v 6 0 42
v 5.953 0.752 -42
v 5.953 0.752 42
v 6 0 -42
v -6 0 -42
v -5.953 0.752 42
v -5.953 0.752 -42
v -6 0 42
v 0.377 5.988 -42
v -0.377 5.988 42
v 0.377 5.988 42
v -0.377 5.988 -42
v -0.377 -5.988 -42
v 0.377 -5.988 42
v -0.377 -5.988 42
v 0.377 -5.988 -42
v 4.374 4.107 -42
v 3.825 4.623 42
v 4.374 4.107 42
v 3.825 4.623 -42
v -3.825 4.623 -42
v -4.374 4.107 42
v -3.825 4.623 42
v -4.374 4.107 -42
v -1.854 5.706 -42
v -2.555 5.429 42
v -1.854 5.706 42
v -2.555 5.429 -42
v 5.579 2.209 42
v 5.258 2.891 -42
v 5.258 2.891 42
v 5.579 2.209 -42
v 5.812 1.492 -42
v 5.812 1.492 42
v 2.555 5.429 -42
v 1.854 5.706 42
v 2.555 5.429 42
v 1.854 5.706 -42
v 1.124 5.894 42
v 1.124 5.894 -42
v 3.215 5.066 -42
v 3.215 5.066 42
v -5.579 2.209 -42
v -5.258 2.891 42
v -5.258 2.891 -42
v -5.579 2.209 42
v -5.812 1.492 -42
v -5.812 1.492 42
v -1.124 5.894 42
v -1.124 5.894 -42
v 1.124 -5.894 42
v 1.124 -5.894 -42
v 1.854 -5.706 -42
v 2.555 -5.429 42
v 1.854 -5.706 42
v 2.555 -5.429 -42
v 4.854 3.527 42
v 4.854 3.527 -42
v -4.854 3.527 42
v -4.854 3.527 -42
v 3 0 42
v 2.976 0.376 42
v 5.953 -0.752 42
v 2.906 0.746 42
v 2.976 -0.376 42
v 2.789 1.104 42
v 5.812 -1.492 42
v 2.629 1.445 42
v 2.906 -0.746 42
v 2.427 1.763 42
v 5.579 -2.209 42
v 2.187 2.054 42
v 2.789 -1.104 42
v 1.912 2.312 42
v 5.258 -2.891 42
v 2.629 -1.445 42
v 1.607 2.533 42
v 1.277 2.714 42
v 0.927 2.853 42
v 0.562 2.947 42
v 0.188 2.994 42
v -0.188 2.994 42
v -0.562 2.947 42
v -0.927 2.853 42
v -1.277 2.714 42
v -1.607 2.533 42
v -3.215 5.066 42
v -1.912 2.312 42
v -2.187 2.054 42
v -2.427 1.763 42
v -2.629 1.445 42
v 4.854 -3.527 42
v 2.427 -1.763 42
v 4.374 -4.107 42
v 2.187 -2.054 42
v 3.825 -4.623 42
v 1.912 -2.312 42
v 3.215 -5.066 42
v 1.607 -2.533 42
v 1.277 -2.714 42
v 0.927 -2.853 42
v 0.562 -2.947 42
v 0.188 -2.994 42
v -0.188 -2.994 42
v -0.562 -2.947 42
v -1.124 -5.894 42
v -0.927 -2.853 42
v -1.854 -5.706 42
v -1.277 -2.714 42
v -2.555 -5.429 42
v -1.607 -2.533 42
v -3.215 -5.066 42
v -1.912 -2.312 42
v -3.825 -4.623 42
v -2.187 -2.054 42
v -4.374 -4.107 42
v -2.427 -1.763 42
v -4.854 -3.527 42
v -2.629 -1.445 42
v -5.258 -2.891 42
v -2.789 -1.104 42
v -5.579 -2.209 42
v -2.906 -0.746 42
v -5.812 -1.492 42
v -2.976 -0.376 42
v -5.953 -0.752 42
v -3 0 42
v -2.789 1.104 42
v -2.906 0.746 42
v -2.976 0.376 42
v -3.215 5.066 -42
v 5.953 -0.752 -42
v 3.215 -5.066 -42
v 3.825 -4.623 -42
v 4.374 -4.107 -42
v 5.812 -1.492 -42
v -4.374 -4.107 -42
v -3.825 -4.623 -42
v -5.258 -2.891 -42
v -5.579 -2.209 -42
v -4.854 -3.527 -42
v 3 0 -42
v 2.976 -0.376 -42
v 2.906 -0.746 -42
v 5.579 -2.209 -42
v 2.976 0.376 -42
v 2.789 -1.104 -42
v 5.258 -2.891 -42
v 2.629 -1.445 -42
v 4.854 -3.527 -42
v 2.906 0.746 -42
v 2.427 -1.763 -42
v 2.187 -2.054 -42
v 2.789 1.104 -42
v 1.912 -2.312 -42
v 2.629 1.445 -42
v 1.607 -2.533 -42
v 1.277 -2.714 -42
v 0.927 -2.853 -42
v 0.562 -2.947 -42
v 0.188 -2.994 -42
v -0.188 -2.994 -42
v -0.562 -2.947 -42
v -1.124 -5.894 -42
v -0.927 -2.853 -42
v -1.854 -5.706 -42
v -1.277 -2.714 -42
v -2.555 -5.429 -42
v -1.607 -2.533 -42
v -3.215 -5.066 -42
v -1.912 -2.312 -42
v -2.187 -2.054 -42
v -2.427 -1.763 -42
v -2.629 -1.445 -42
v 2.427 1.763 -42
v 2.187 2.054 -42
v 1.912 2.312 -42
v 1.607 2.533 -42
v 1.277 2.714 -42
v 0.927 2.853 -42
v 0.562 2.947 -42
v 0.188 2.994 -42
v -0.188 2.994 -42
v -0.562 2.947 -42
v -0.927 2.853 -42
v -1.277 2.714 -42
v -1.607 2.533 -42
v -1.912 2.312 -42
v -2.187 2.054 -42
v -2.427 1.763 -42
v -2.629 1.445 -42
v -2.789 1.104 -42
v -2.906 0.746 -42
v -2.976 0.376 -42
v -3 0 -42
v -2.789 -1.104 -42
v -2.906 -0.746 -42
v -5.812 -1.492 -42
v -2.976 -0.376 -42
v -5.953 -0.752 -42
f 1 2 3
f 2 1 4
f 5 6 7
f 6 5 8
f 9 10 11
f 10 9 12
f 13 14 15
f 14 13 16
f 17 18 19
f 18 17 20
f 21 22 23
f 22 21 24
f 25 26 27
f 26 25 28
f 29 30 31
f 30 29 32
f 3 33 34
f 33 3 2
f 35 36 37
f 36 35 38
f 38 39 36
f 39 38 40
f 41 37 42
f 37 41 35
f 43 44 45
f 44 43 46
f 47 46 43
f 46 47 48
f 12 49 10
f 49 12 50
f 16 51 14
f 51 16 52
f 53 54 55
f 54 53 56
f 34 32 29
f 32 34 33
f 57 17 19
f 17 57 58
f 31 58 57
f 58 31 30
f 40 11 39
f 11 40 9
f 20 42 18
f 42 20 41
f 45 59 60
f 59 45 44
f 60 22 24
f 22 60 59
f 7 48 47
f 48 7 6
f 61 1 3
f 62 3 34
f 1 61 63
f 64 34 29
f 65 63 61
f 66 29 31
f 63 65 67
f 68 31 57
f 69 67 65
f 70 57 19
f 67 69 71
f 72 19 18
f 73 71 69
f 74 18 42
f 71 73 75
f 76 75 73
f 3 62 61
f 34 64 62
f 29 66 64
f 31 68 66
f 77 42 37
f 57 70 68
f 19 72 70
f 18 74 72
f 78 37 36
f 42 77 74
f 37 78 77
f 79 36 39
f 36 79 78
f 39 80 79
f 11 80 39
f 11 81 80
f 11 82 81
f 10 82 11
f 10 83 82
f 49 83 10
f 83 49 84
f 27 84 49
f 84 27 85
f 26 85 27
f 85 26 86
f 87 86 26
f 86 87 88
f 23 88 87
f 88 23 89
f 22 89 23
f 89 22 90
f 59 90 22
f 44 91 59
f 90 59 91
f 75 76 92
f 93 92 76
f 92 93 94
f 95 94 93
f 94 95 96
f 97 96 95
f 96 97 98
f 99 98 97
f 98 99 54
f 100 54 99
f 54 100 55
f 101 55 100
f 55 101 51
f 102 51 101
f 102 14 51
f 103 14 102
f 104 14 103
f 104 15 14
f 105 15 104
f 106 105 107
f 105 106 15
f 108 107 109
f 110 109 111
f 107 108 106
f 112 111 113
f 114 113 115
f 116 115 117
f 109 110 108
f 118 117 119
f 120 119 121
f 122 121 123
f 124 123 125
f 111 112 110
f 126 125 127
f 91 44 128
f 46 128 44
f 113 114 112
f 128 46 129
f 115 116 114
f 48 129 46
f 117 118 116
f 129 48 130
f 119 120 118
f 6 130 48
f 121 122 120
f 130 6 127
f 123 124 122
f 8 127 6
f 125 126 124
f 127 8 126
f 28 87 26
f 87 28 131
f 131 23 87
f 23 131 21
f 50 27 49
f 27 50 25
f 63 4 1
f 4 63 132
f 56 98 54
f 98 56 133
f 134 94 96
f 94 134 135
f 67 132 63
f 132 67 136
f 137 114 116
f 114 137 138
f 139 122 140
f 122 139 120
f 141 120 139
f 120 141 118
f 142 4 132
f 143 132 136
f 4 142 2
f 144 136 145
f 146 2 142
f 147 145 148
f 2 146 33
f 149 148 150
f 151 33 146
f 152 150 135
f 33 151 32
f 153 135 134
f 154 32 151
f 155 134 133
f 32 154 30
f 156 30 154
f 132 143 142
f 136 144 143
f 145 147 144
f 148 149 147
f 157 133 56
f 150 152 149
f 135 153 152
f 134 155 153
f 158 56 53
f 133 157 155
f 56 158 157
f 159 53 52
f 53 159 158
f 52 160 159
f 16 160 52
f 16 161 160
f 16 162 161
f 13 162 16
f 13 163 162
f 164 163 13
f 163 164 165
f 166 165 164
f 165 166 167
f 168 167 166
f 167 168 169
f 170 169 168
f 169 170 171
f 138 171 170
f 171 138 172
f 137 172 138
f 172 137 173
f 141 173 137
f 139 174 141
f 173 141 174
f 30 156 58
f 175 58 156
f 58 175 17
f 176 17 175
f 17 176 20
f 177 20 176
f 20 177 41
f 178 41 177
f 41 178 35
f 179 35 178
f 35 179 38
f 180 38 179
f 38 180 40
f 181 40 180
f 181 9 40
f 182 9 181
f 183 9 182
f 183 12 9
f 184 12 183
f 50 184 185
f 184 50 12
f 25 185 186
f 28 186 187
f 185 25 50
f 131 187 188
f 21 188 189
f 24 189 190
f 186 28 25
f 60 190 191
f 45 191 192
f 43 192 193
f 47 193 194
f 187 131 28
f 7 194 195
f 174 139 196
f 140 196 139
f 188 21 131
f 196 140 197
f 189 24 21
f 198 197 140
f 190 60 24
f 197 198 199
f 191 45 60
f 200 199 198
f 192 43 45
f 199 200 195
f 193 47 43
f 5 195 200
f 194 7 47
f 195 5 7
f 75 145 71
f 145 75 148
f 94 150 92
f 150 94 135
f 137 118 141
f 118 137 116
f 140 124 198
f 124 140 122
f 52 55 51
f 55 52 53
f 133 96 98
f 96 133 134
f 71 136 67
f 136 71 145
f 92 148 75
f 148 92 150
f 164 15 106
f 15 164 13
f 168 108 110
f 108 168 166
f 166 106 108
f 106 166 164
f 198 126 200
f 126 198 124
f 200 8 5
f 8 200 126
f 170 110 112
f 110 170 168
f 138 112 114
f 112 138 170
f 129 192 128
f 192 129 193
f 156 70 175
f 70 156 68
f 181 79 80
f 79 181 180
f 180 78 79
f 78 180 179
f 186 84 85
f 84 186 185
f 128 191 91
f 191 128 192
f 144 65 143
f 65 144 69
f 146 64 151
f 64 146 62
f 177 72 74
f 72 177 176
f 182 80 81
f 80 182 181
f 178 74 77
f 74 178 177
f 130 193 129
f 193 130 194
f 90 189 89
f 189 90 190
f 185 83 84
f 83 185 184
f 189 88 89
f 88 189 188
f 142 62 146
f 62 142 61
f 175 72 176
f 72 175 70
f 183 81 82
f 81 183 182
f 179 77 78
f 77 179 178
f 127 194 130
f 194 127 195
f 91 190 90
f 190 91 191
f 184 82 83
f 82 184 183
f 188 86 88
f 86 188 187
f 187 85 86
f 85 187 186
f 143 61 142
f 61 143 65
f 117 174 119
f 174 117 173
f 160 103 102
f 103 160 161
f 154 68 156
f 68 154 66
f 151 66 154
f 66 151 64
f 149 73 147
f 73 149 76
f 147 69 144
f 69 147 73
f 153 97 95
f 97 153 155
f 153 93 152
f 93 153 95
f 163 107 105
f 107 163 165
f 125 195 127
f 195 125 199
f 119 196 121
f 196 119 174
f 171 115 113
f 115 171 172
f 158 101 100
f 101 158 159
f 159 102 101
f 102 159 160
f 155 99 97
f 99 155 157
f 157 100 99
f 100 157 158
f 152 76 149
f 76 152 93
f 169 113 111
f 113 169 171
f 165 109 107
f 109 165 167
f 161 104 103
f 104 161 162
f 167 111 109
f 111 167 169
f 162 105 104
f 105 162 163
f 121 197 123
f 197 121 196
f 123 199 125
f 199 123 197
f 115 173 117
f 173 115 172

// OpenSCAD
$fn = 50;


difference() {
	union() {
		translate(v = [0, 0, -42.0000000000]) {
			cylinder(h = 84, r = 6.0000000000);
		}
	}
	union() {
		translate(v = [0, 0, -100.0000000000]) {
			cylinder(h = 200, r = 3);
		}
	}
}
